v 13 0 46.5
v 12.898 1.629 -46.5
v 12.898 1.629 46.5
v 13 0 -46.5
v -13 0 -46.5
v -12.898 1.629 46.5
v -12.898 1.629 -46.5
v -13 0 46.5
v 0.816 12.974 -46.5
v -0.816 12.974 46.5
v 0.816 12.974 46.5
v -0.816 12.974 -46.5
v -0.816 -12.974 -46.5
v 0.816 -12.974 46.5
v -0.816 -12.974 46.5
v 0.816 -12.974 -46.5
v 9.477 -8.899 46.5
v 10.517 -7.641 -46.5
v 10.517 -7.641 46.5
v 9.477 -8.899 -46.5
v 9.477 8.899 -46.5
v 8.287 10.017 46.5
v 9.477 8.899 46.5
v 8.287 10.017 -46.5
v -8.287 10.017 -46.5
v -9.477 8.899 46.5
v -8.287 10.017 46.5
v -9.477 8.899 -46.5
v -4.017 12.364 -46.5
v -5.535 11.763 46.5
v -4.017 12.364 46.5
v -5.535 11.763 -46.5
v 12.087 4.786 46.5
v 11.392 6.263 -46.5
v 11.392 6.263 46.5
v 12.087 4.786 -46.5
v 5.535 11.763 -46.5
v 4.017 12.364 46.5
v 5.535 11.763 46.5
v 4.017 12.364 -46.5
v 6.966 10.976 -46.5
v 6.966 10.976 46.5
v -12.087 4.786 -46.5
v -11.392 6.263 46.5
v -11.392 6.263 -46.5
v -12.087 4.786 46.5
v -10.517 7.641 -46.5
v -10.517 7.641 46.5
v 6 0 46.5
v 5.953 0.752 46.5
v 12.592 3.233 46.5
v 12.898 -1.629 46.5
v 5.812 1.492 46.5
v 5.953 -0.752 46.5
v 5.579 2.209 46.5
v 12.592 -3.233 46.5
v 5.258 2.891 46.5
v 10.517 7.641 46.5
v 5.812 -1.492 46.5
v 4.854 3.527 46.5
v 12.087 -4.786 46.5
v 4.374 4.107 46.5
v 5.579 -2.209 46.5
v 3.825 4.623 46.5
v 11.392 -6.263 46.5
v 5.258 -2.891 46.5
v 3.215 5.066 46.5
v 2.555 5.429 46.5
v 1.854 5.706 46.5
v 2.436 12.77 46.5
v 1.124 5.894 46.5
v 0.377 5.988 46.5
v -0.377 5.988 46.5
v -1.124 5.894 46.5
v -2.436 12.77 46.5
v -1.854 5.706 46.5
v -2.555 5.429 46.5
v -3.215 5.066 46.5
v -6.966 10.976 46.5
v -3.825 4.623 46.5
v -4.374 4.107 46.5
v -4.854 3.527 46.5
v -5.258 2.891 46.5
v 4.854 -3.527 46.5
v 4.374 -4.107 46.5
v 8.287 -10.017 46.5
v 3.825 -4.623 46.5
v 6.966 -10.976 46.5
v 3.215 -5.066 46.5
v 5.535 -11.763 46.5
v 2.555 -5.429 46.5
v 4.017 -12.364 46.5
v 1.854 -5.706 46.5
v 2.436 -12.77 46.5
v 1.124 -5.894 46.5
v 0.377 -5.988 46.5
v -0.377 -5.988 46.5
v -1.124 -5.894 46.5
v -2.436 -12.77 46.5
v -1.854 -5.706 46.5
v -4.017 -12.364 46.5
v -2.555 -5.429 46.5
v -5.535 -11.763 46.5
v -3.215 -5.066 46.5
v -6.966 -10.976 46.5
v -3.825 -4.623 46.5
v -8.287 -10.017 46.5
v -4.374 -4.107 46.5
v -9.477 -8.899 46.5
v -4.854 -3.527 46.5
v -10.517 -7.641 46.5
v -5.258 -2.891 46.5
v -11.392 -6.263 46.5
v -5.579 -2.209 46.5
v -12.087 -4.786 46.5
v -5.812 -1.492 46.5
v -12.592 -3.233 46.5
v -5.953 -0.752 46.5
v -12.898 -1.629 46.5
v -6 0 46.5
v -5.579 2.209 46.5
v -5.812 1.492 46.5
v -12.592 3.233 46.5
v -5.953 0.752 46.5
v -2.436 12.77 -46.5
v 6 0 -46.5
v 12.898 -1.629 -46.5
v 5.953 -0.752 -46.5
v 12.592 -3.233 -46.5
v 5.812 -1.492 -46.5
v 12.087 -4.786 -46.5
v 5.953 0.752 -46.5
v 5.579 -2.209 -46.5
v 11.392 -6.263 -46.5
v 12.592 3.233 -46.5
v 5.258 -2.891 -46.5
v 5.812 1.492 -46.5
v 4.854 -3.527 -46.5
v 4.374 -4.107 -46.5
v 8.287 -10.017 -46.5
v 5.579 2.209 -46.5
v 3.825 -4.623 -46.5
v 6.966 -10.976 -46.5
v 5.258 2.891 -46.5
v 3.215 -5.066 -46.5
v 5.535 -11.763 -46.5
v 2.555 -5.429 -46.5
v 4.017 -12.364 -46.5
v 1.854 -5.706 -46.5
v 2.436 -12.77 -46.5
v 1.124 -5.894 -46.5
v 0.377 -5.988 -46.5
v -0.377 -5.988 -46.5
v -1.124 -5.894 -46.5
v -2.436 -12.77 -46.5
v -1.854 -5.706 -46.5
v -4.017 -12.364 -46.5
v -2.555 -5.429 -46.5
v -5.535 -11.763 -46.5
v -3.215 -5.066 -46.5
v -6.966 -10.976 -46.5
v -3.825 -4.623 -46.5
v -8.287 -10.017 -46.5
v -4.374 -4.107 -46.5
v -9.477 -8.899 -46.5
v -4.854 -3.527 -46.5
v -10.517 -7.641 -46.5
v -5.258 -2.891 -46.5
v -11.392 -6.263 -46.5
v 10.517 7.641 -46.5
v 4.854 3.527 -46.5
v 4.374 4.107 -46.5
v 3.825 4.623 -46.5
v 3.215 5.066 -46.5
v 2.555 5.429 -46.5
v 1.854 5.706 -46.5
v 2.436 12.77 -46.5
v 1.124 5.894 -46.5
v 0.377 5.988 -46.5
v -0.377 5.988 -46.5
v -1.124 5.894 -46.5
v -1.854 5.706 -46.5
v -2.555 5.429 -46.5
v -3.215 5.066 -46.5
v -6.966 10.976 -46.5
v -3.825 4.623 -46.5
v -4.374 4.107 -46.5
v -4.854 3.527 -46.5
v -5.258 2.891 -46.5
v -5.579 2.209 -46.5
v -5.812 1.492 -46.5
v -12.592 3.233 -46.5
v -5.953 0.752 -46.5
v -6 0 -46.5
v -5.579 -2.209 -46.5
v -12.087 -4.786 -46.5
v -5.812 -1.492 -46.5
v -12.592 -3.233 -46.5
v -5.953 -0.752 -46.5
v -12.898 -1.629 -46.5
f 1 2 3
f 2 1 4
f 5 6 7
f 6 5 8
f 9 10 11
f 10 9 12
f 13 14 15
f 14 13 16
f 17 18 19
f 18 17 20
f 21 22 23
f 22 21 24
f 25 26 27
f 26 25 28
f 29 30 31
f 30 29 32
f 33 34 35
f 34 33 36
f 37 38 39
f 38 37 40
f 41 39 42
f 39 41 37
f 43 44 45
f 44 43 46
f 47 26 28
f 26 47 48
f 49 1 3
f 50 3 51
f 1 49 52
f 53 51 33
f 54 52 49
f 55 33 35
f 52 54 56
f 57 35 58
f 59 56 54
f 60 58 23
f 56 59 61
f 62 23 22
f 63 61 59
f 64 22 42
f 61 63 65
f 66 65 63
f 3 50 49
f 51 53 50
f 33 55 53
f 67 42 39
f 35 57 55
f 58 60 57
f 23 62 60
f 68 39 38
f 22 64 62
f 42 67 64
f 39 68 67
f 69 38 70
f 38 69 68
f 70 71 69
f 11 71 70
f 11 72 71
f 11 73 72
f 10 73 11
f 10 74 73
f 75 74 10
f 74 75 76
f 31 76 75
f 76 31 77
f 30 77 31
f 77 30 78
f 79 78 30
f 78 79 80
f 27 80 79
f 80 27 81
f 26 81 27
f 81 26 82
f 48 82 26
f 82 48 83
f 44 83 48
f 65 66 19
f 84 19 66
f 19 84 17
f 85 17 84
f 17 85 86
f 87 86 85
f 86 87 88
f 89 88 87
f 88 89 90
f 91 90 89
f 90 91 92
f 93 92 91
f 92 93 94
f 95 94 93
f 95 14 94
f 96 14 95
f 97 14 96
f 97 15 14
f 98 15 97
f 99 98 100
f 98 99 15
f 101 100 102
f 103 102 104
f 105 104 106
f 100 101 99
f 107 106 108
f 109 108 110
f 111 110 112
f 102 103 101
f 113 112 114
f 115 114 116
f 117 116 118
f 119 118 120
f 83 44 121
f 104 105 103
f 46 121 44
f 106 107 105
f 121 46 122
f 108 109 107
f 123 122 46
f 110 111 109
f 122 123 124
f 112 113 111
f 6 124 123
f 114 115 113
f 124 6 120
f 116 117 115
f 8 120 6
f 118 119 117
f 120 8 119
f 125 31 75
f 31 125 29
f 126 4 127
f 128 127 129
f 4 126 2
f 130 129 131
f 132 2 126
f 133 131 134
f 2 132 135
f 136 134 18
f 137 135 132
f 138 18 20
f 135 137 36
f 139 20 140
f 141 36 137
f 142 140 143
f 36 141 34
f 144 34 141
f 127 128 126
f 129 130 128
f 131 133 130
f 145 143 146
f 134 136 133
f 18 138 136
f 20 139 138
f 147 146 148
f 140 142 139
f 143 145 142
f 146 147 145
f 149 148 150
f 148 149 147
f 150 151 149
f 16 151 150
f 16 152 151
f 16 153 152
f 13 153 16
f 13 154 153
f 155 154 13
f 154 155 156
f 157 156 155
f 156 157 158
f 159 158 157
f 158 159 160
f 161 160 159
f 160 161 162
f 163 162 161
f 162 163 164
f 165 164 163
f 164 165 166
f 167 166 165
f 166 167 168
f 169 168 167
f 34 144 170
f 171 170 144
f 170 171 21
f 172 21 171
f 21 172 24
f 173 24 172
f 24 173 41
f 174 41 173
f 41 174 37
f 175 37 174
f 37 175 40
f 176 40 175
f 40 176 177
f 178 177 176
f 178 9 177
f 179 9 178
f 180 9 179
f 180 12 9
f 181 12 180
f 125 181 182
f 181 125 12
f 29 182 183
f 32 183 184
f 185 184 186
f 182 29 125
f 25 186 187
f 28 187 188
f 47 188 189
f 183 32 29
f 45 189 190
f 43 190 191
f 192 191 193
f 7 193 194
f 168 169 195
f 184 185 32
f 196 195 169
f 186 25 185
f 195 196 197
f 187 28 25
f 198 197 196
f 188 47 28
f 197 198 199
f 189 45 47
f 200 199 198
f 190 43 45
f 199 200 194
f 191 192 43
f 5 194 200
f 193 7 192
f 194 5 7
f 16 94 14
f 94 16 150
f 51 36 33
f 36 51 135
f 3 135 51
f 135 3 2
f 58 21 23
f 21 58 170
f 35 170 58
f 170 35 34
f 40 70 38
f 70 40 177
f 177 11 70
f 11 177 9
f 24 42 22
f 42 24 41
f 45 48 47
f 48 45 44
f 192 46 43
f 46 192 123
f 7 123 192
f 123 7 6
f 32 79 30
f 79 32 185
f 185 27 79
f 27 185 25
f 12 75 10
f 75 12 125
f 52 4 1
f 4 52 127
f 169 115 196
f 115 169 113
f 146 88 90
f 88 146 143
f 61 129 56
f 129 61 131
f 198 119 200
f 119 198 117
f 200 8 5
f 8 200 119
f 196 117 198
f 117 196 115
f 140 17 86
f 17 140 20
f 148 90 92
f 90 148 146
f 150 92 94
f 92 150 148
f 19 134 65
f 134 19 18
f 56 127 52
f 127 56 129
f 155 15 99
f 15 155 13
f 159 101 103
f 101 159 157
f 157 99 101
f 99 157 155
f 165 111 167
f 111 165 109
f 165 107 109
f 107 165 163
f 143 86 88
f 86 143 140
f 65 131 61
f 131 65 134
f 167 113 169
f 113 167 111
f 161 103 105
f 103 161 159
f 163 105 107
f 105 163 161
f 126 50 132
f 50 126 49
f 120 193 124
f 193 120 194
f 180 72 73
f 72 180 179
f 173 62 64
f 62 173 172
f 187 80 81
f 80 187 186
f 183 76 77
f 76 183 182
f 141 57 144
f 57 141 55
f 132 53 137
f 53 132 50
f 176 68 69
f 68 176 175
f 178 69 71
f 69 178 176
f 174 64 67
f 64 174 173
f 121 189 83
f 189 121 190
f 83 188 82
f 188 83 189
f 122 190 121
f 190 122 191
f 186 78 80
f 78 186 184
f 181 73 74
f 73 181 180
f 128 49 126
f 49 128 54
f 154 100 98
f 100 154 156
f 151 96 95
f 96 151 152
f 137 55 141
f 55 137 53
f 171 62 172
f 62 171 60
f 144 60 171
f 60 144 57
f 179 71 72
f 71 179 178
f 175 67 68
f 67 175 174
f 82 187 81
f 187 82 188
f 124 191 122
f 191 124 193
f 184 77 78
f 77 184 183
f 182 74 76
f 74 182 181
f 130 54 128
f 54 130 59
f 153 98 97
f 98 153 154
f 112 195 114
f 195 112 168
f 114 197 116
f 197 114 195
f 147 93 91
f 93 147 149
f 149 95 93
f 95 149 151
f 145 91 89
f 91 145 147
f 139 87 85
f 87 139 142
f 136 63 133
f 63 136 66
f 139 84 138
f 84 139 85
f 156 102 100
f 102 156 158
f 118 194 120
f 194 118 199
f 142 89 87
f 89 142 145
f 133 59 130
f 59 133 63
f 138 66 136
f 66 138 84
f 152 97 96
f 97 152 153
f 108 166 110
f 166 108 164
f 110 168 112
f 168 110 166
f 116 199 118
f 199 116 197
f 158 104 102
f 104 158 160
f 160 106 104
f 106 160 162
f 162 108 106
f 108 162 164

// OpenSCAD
$fn = 50;


difference() {
	union() {
		translate(v = [0, 0, -46.5000000000]) {
			cylinder(h = 93, r = 13.0000000000);
		}
	}
	union() {
		translate(v = [0, 0, -100.0000000000]) {
			cylinder(h = 200, r = 6);
		}
	}
}
